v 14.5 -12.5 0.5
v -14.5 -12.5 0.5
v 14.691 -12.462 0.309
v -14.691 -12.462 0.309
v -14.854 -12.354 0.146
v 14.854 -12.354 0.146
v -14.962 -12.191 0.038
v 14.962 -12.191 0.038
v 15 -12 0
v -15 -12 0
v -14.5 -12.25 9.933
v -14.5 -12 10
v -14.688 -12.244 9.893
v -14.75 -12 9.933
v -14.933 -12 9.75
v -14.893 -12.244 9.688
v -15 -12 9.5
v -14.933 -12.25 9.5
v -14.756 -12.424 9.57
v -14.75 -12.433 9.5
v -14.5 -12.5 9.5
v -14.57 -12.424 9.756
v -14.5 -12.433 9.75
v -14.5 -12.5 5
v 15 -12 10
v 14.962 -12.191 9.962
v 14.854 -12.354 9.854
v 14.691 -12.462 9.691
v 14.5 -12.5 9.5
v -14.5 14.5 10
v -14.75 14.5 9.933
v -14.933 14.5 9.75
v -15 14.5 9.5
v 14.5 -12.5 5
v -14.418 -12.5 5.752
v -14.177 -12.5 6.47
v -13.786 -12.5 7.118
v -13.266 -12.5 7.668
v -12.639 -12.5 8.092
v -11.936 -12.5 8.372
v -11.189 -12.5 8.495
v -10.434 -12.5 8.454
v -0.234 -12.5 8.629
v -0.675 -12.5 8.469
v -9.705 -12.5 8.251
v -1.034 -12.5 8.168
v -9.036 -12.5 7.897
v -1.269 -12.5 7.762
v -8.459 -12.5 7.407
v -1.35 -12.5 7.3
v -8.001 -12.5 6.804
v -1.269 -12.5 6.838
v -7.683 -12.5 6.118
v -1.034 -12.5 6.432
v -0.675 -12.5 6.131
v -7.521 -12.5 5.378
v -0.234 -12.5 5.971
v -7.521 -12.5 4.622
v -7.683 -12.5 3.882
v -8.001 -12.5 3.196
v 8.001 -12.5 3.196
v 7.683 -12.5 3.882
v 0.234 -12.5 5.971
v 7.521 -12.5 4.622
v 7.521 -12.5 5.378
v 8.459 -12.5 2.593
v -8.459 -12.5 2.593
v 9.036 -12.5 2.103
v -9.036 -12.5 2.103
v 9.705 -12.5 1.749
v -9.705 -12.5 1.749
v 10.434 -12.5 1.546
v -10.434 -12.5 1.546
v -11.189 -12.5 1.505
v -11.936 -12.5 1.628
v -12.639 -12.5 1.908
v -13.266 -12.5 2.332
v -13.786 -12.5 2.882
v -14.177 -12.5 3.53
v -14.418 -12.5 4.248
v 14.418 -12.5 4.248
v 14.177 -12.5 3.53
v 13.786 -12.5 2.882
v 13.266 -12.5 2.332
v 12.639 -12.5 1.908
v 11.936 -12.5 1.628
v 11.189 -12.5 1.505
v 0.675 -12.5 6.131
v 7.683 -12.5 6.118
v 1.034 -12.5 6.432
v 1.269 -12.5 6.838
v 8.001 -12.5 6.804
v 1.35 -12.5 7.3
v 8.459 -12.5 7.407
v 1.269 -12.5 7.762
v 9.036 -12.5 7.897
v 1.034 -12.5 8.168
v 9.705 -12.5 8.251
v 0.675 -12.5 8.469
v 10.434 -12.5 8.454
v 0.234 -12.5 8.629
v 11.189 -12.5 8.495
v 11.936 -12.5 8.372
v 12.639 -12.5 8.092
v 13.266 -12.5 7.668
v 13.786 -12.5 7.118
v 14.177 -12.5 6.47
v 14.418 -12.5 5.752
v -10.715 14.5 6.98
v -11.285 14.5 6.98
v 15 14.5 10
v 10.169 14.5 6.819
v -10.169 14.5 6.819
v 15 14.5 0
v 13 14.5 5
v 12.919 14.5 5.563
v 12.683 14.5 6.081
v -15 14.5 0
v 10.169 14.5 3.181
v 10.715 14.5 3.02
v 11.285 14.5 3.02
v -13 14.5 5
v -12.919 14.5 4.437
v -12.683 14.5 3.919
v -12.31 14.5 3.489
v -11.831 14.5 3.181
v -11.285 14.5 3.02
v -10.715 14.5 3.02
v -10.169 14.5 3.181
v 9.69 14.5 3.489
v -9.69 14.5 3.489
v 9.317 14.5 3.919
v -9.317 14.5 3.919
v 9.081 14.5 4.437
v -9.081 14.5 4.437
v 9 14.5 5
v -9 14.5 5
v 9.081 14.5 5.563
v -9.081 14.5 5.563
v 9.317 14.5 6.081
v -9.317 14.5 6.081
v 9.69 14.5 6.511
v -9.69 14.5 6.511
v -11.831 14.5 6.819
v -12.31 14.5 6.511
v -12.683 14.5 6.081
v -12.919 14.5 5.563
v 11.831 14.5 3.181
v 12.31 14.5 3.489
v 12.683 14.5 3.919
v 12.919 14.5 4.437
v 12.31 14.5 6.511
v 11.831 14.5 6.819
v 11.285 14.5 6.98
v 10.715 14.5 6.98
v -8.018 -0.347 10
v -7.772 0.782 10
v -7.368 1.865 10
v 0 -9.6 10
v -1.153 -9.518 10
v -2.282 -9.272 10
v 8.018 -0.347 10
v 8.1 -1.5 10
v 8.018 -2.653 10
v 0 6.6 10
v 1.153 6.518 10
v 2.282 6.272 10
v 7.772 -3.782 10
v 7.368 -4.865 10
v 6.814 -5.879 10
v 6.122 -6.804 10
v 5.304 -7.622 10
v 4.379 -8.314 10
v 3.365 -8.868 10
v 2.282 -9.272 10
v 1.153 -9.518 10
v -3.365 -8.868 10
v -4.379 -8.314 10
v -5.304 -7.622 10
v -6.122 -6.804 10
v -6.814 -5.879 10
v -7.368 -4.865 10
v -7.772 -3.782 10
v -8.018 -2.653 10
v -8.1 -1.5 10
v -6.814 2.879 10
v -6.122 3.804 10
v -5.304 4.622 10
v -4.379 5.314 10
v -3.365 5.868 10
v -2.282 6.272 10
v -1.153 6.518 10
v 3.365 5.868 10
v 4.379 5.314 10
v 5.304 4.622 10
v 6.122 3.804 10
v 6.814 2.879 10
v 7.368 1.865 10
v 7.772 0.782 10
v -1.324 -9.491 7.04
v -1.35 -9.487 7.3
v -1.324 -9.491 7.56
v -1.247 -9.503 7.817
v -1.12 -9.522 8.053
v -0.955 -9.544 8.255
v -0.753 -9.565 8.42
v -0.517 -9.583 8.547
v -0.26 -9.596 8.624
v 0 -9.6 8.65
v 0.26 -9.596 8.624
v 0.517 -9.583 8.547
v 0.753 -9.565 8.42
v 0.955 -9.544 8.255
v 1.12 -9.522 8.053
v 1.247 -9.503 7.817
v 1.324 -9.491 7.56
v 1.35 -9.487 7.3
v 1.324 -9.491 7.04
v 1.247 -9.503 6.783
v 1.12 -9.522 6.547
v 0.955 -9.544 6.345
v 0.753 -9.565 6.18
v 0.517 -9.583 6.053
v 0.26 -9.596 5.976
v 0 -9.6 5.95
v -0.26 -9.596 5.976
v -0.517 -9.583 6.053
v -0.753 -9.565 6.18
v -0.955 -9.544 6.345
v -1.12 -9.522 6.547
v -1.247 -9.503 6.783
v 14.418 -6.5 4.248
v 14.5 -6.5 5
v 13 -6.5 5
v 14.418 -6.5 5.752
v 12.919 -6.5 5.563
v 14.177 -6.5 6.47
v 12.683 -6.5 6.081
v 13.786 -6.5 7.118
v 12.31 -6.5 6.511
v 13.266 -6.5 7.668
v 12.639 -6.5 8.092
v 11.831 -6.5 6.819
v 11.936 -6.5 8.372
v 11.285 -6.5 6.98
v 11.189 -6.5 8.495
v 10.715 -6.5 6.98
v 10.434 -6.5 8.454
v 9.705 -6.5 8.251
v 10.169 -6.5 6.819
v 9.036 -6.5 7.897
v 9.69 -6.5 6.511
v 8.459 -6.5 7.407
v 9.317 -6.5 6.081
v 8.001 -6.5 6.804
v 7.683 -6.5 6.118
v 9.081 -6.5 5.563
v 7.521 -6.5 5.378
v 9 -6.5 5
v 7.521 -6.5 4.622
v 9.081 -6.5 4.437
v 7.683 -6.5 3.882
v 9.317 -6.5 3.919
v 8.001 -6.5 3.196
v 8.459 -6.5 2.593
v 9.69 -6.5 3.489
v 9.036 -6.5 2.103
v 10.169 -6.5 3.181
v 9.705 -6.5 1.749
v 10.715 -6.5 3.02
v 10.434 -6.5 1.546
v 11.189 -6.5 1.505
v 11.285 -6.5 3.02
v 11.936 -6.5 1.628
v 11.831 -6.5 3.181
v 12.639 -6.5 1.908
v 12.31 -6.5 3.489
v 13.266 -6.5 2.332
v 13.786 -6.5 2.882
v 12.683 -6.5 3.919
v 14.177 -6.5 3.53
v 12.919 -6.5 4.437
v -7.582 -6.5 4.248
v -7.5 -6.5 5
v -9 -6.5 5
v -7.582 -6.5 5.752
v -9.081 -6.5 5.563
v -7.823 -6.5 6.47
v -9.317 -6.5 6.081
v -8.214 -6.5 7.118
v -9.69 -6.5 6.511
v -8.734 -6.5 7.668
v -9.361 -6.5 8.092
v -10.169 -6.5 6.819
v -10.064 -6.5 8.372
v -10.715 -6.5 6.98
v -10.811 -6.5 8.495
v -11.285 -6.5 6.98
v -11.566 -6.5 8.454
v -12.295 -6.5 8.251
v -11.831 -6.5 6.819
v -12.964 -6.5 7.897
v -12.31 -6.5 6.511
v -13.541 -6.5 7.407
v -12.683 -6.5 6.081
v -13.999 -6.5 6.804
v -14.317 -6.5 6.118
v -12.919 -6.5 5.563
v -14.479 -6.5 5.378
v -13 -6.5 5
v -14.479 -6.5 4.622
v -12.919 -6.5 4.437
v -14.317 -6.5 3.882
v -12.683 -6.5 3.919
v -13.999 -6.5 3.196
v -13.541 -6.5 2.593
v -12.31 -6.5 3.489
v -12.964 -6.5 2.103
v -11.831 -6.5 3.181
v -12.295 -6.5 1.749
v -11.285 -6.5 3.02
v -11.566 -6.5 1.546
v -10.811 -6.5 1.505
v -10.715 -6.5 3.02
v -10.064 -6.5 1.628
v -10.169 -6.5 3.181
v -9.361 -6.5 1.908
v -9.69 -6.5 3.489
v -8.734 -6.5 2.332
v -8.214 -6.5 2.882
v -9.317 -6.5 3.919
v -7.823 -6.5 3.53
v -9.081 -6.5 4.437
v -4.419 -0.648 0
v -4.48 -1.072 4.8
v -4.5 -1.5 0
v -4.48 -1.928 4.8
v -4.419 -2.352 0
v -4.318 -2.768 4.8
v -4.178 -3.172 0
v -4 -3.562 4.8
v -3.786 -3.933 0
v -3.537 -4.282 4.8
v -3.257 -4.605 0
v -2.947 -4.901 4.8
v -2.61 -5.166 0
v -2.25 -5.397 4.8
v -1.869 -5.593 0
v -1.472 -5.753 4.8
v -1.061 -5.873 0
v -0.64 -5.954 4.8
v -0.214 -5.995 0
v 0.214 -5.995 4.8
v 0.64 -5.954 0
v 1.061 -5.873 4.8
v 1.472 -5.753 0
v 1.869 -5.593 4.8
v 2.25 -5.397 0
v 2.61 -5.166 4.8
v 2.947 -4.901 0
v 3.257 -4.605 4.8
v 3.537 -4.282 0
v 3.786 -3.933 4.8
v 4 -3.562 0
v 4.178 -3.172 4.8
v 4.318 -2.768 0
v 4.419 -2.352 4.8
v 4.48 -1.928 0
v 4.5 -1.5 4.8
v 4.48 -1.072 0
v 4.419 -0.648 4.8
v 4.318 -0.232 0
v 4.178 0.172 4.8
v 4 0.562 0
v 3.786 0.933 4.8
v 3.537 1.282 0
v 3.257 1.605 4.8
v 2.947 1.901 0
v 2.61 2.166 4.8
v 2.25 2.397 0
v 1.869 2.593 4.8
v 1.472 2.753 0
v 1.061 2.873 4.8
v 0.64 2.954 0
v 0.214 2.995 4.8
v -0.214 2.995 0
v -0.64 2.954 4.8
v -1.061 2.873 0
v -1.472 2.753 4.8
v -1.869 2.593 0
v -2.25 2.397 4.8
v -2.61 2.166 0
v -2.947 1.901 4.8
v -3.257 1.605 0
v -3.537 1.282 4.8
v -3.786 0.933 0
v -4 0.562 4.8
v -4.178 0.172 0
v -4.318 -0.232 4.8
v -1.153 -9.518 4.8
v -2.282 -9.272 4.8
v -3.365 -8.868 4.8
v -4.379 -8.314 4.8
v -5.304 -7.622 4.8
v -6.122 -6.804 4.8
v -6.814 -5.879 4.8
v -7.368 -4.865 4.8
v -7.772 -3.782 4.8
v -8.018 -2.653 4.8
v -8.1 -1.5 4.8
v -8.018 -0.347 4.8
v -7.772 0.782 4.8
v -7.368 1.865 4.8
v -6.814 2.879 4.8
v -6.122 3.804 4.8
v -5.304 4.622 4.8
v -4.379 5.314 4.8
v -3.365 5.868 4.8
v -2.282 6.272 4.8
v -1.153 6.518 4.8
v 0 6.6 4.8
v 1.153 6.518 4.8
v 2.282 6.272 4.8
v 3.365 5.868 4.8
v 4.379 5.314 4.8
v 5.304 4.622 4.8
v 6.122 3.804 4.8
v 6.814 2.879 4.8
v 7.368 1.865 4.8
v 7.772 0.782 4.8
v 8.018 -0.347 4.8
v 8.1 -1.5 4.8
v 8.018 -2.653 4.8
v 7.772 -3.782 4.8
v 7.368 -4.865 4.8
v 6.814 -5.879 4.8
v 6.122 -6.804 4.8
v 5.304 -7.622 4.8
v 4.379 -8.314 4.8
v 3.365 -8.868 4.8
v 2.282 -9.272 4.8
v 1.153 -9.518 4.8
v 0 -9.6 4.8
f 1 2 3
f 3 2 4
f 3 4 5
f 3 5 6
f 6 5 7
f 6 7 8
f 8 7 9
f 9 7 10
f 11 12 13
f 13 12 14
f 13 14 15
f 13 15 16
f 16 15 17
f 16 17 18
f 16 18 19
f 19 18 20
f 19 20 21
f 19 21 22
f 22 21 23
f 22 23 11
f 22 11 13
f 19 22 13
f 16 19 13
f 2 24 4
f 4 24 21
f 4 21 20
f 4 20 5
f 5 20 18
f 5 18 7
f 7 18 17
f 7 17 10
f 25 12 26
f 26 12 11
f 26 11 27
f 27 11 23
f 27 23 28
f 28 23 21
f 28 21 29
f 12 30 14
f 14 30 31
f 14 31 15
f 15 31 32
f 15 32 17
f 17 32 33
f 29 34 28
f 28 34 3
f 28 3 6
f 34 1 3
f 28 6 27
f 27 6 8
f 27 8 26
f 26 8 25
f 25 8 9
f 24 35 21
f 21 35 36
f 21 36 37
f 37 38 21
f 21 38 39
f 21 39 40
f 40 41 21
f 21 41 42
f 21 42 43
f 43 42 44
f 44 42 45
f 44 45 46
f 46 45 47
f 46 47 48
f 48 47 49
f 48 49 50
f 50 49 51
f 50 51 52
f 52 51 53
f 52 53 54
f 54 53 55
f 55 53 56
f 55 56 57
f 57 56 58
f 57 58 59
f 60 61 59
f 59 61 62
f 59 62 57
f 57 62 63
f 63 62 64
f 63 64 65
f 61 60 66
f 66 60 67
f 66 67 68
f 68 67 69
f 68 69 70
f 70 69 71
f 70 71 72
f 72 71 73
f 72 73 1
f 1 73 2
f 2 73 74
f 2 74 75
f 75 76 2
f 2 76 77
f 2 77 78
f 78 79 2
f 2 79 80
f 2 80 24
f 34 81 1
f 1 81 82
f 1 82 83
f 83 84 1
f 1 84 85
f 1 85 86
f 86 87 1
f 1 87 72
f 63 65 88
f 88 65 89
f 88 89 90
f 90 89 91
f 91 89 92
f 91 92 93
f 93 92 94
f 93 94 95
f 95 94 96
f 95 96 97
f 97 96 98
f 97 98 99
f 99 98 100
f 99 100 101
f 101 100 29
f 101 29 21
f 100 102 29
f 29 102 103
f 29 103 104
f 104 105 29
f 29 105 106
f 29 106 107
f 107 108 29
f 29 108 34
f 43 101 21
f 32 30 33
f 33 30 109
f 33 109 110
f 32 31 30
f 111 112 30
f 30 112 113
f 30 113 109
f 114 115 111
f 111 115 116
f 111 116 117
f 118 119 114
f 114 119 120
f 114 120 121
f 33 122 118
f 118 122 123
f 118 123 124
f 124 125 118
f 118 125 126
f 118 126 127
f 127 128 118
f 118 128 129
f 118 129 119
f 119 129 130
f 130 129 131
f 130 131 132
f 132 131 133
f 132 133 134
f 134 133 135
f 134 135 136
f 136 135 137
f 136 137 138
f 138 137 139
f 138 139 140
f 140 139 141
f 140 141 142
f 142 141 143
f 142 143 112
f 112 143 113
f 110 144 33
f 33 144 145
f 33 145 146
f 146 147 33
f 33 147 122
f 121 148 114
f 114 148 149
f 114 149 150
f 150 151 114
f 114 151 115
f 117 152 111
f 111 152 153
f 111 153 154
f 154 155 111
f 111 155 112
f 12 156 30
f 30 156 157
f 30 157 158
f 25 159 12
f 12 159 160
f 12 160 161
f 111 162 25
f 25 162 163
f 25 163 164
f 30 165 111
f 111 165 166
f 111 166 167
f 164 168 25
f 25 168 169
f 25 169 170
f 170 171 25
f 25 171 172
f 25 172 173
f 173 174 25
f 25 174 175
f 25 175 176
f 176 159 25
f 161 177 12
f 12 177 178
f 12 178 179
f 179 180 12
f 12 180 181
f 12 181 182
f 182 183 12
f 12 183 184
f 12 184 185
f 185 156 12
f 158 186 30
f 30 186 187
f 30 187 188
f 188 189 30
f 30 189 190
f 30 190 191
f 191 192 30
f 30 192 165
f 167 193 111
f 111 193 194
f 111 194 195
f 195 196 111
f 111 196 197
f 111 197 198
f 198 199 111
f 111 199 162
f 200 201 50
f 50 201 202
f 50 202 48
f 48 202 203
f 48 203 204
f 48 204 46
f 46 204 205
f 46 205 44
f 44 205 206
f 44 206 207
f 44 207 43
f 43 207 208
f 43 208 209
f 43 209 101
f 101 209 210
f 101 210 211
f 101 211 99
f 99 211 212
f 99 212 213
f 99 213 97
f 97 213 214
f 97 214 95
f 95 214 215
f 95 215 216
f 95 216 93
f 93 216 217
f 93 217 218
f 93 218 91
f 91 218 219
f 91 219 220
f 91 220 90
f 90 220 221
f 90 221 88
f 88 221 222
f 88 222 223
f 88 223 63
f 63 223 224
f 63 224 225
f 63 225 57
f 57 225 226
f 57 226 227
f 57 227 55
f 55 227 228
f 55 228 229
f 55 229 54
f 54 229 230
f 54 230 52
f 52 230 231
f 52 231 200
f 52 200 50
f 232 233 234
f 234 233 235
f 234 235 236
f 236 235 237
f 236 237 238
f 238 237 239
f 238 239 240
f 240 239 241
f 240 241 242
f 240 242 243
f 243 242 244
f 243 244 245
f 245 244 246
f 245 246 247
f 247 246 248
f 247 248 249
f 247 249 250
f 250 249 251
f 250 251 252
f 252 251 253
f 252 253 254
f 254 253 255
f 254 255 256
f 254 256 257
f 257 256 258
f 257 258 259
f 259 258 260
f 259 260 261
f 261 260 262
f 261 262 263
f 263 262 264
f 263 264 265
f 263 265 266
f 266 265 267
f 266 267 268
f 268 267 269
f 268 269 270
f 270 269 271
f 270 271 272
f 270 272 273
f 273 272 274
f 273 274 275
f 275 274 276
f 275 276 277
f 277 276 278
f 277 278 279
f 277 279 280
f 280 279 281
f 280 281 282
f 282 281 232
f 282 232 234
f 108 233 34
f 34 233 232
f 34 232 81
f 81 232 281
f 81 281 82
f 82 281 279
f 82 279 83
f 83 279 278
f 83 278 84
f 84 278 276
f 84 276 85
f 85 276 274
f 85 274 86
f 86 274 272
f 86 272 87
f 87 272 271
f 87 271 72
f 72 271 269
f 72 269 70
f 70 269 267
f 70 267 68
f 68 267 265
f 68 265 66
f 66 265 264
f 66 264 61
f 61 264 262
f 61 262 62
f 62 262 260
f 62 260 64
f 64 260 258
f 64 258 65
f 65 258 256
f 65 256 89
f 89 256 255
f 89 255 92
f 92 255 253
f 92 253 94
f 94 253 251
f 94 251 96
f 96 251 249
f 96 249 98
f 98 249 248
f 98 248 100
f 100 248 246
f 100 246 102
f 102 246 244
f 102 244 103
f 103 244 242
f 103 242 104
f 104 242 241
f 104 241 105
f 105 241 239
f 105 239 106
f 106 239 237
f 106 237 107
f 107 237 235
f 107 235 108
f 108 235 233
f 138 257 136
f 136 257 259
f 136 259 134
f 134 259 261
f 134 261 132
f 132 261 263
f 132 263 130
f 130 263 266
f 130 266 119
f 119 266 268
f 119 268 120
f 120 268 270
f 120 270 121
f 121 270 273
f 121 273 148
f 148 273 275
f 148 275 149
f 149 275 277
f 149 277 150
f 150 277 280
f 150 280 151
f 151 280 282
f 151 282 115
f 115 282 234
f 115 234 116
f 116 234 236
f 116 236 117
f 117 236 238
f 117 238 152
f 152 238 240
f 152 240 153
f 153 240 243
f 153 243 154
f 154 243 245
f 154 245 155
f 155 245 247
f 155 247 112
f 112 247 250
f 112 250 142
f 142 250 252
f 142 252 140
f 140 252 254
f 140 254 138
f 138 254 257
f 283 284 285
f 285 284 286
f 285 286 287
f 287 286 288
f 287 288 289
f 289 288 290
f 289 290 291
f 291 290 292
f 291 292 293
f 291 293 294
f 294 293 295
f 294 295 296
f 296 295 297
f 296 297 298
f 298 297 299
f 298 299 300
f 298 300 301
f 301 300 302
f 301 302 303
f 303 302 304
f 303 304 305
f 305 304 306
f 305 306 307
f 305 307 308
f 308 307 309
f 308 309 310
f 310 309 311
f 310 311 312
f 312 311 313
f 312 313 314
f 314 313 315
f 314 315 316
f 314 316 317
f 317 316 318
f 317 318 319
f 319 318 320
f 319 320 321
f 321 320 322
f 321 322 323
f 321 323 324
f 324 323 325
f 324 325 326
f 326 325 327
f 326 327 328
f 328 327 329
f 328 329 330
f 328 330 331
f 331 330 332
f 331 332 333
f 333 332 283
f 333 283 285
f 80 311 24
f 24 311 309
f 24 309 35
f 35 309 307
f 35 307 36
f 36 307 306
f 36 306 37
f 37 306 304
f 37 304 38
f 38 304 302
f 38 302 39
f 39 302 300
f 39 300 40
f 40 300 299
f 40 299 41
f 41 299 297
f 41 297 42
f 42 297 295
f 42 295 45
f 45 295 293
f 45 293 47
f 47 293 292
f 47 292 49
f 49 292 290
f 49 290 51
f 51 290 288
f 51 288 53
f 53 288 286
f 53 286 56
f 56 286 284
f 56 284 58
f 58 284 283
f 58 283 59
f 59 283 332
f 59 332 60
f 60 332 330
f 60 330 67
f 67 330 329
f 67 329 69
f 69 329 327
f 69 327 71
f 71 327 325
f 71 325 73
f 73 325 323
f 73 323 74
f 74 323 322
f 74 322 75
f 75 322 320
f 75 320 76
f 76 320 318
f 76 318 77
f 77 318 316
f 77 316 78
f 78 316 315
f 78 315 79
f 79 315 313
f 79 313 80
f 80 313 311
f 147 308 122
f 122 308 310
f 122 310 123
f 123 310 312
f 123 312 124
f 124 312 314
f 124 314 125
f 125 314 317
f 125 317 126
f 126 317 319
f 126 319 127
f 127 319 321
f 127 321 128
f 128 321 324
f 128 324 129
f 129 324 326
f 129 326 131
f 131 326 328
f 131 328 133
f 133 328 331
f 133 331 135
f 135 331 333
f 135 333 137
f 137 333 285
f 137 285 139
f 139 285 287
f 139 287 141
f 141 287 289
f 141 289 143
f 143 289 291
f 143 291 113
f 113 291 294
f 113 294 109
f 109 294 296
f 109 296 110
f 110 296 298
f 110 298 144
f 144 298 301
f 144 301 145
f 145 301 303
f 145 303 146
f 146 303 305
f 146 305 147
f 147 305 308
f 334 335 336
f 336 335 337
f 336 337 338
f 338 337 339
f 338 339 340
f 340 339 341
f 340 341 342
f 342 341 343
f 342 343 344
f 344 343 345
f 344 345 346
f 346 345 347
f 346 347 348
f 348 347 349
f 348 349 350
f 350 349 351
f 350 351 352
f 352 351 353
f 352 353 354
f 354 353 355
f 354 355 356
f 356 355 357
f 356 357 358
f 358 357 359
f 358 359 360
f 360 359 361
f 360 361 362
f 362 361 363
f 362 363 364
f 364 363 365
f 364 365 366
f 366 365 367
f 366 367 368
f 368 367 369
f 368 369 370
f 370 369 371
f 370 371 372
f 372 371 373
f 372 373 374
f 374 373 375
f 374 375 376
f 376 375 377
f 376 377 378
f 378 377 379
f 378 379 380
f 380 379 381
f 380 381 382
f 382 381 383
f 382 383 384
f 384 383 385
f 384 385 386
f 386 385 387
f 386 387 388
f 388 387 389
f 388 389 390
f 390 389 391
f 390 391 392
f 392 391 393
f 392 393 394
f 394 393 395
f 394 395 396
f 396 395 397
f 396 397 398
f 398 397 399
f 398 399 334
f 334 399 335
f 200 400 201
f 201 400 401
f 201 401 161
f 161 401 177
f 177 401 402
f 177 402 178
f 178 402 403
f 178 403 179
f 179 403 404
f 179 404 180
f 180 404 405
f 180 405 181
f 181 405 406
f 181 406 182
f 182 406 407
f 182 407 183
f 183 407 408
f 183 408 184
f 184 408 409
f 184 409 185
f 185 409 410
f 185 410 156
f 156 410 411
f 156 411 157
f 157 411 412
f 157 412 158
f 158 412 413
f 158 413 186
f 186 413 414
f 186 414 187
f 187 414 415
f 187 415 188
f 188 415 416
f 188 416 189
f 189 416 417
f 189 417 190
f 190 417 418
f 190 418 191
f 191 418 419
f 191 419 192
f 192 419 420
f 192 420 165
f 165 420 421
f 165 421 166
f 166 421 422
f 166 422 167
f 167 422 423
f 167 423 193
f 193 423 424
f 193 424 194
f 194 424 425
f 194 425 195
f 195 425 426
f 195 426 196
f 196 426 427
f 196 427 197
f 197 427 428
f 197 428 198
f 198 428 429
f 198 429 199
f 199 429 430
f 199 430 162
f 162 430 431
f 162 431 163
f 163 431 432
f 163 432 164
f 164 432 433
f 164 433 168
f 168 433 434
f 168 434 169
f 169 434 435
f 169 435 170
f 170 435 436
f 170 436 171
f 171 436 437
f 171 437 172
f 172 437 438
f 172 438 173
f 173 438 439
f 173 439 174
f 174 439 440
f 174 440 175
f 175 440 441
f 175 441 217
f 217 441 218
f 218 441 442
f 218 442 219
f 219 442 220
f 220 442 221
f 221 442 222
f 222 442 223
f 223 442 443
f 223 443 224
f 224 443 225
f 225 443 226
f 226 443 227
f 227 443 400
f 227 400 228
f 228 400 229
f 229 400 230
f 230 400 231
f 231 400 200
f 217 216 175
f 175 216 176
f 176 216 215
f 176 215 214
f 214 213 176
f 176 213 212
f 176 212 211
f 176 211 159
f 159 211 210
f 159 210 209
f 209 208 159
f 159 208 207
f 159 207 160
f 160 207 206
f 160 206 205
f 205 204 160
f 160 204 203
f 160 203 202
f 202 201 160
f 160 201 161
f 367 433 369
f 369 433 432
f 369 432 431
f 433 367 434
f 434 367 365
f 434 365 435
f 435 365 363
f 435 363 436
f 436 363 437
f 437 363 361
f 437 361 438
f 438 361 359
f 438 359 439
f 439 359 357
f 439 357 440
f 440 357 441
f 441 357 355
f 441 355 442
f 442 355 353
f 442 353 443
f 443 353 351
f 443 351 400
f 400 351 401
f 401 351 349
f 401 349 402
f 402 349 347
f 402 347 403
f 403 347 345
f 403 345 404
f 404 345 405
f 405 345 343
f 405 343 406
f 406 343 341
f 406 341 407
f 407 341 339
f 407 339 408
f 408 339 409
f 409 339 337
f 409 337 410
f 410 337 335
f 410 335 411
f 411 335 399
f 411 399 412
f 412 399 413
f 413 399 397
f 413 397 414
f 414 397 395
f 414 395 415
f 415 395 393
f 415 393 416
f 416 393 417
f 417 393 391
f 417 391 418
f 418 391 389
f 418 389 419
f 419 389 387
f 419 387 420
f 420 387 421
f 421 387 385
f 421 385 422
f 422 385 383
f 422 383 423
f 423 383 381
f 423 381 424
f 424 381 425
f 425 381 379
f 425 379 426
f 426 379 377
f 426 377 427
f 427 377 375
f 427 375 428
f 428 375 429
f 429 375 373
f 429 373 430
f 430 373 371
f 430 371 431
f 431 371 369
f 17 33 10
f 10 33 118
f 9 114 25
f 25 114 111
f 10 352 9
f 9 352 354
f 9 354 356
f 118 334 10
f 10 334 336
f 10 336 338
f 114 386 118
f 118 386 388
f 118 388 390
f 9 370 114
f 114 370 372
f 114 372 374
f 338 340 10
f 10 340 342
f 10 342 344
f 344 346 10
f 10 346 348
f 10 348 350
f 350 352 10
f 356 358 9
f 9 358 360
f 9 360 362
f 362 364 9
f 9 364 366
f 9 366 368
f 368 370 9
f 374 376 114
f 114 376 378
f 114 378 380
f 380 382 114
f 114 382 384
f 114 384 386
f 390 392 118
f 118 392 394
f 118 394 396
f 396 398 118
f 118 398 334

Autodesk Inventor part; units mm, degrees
ref_plane "YZ Plane" through (0, 0, 0) normal (1, 0, 0) x (0, 1, 0)
ref_plane "XZ Plane" through (0, 0, 0) normal (0, 1, 0) x (-1, 0, 0)
ref_plane "XY Plane" through (0, 0, 0) normal (0, 0, 1) x (1, 0, 0)
sketch "Sketch1" plane through (0, 0, 0) normal (0, 0, 1) x (1, 0, 0)
  line L0 (-15, 12.5) -> (15, 12.5)
  line L1 (15, 12.5) -> (15, -12.5)
  line L2 (15, -12.5) -> (-15, -12.5)
  line L3 (-15, -12.5) -> (-15, 12.5)
  line L4 (-15, 12.5) -> (15, -12.5) construction
  line L5 (15, 12.5) -> (-15, -12.5) construction
  point P0 (0, 0)
  dimension "d13" = 4
  dimension "d0" = 30
  dimension "d10" = 25
extrude "Extrusion1" add sketch "Sketch1" along normal blind 10
sketch "Sketch2" plane through (0, 0, 10) normal (0, 0, 1) x (1, 0, 0)
  circle A0 centre (0, -1.5) radius 8.1
  line L0 (15, 12.5) -> (-15, 12.5) projected
  point P0 (0, 12.5)
  dimension "d4" = 16.2
  dimension "d38" = 14
extrude "Extrusion2" cut sketch "Sketch2" against normal blind 5.2
sketch "Sketch3" plane through (0, -1.5, 4.8) normal (0, 0, 1) x (1, 0, 0)
  circle A0 centre (0, 0) radius 4.5
  circle A1 centre (0, 0) radius 8.1 projected
  dimension "d7" = 9
extrude "Extrusion3" cut sketch "Sketch3" against normal blind 5.2 contours A0
sketch "Sketch4" plane through (-15, -12.5, 0) normal (0, -1, 0) x (1, 0, 0)
  line L0 (0, 0) -> (0, 10) projected
  line L1 (0, 10) -> (30, 10) projected
  point P0 (15, 0)
  point P1 (4, 5)
  dimension "d11" = 4
  dimension "d12" = 5
hole "Hole1" at (-11, -12.5, 5) direction (0, 1, 0) diameter 4 end through all counterbore diameter 7 counterbore depth 6
sketch "Sketch5" plane through (-15, -12.5, 0) normal (0, -1, 0) x (1, 0, 0)
  line L0 (30, 0) -> (30, 10) projected
  line L1 (0, 10) -> (30, 10) projected
  point P0 (15, 0)
  point P1 (26, 5)
  dimension "d20" = 4
  dimension "d21" = 5
hole "Hole2" at (11, -12.5, 5) direction (0, 1, 0) diameter 4 end through all counterbore diameter 7 counterbore depth 6
sketch "Sketch6" plane through (-15, -12.5, 0) normal (0, -1, 0) x (1, 0, 0)
  line L0 (0, 10) -> (30, 10) projected
  line L1 (30, 0) -> (30, 10) projected
  point P0 (15, 0)
  point P1 (15, 7.3)
  dimension "d29" = 2.7
  dimension "d30" = 15
hole "Hole3" at (0, -12.5, 7.3) direction (0, 1, 0) diameter 2.7 depth 8 tip angle 118
fillet "Fillet2" radius 0.5 5 edges at (-15, 0, 10) (0, -12.5, 0) (15, -12.5, 5) (-15, -12.5, 5) (0, -12.5, 10)
move faces "Move1" translate (0, 2, 0) faces at (3.3569, 12.5, 1.0764)
properties part number "wheel_holder_2"
